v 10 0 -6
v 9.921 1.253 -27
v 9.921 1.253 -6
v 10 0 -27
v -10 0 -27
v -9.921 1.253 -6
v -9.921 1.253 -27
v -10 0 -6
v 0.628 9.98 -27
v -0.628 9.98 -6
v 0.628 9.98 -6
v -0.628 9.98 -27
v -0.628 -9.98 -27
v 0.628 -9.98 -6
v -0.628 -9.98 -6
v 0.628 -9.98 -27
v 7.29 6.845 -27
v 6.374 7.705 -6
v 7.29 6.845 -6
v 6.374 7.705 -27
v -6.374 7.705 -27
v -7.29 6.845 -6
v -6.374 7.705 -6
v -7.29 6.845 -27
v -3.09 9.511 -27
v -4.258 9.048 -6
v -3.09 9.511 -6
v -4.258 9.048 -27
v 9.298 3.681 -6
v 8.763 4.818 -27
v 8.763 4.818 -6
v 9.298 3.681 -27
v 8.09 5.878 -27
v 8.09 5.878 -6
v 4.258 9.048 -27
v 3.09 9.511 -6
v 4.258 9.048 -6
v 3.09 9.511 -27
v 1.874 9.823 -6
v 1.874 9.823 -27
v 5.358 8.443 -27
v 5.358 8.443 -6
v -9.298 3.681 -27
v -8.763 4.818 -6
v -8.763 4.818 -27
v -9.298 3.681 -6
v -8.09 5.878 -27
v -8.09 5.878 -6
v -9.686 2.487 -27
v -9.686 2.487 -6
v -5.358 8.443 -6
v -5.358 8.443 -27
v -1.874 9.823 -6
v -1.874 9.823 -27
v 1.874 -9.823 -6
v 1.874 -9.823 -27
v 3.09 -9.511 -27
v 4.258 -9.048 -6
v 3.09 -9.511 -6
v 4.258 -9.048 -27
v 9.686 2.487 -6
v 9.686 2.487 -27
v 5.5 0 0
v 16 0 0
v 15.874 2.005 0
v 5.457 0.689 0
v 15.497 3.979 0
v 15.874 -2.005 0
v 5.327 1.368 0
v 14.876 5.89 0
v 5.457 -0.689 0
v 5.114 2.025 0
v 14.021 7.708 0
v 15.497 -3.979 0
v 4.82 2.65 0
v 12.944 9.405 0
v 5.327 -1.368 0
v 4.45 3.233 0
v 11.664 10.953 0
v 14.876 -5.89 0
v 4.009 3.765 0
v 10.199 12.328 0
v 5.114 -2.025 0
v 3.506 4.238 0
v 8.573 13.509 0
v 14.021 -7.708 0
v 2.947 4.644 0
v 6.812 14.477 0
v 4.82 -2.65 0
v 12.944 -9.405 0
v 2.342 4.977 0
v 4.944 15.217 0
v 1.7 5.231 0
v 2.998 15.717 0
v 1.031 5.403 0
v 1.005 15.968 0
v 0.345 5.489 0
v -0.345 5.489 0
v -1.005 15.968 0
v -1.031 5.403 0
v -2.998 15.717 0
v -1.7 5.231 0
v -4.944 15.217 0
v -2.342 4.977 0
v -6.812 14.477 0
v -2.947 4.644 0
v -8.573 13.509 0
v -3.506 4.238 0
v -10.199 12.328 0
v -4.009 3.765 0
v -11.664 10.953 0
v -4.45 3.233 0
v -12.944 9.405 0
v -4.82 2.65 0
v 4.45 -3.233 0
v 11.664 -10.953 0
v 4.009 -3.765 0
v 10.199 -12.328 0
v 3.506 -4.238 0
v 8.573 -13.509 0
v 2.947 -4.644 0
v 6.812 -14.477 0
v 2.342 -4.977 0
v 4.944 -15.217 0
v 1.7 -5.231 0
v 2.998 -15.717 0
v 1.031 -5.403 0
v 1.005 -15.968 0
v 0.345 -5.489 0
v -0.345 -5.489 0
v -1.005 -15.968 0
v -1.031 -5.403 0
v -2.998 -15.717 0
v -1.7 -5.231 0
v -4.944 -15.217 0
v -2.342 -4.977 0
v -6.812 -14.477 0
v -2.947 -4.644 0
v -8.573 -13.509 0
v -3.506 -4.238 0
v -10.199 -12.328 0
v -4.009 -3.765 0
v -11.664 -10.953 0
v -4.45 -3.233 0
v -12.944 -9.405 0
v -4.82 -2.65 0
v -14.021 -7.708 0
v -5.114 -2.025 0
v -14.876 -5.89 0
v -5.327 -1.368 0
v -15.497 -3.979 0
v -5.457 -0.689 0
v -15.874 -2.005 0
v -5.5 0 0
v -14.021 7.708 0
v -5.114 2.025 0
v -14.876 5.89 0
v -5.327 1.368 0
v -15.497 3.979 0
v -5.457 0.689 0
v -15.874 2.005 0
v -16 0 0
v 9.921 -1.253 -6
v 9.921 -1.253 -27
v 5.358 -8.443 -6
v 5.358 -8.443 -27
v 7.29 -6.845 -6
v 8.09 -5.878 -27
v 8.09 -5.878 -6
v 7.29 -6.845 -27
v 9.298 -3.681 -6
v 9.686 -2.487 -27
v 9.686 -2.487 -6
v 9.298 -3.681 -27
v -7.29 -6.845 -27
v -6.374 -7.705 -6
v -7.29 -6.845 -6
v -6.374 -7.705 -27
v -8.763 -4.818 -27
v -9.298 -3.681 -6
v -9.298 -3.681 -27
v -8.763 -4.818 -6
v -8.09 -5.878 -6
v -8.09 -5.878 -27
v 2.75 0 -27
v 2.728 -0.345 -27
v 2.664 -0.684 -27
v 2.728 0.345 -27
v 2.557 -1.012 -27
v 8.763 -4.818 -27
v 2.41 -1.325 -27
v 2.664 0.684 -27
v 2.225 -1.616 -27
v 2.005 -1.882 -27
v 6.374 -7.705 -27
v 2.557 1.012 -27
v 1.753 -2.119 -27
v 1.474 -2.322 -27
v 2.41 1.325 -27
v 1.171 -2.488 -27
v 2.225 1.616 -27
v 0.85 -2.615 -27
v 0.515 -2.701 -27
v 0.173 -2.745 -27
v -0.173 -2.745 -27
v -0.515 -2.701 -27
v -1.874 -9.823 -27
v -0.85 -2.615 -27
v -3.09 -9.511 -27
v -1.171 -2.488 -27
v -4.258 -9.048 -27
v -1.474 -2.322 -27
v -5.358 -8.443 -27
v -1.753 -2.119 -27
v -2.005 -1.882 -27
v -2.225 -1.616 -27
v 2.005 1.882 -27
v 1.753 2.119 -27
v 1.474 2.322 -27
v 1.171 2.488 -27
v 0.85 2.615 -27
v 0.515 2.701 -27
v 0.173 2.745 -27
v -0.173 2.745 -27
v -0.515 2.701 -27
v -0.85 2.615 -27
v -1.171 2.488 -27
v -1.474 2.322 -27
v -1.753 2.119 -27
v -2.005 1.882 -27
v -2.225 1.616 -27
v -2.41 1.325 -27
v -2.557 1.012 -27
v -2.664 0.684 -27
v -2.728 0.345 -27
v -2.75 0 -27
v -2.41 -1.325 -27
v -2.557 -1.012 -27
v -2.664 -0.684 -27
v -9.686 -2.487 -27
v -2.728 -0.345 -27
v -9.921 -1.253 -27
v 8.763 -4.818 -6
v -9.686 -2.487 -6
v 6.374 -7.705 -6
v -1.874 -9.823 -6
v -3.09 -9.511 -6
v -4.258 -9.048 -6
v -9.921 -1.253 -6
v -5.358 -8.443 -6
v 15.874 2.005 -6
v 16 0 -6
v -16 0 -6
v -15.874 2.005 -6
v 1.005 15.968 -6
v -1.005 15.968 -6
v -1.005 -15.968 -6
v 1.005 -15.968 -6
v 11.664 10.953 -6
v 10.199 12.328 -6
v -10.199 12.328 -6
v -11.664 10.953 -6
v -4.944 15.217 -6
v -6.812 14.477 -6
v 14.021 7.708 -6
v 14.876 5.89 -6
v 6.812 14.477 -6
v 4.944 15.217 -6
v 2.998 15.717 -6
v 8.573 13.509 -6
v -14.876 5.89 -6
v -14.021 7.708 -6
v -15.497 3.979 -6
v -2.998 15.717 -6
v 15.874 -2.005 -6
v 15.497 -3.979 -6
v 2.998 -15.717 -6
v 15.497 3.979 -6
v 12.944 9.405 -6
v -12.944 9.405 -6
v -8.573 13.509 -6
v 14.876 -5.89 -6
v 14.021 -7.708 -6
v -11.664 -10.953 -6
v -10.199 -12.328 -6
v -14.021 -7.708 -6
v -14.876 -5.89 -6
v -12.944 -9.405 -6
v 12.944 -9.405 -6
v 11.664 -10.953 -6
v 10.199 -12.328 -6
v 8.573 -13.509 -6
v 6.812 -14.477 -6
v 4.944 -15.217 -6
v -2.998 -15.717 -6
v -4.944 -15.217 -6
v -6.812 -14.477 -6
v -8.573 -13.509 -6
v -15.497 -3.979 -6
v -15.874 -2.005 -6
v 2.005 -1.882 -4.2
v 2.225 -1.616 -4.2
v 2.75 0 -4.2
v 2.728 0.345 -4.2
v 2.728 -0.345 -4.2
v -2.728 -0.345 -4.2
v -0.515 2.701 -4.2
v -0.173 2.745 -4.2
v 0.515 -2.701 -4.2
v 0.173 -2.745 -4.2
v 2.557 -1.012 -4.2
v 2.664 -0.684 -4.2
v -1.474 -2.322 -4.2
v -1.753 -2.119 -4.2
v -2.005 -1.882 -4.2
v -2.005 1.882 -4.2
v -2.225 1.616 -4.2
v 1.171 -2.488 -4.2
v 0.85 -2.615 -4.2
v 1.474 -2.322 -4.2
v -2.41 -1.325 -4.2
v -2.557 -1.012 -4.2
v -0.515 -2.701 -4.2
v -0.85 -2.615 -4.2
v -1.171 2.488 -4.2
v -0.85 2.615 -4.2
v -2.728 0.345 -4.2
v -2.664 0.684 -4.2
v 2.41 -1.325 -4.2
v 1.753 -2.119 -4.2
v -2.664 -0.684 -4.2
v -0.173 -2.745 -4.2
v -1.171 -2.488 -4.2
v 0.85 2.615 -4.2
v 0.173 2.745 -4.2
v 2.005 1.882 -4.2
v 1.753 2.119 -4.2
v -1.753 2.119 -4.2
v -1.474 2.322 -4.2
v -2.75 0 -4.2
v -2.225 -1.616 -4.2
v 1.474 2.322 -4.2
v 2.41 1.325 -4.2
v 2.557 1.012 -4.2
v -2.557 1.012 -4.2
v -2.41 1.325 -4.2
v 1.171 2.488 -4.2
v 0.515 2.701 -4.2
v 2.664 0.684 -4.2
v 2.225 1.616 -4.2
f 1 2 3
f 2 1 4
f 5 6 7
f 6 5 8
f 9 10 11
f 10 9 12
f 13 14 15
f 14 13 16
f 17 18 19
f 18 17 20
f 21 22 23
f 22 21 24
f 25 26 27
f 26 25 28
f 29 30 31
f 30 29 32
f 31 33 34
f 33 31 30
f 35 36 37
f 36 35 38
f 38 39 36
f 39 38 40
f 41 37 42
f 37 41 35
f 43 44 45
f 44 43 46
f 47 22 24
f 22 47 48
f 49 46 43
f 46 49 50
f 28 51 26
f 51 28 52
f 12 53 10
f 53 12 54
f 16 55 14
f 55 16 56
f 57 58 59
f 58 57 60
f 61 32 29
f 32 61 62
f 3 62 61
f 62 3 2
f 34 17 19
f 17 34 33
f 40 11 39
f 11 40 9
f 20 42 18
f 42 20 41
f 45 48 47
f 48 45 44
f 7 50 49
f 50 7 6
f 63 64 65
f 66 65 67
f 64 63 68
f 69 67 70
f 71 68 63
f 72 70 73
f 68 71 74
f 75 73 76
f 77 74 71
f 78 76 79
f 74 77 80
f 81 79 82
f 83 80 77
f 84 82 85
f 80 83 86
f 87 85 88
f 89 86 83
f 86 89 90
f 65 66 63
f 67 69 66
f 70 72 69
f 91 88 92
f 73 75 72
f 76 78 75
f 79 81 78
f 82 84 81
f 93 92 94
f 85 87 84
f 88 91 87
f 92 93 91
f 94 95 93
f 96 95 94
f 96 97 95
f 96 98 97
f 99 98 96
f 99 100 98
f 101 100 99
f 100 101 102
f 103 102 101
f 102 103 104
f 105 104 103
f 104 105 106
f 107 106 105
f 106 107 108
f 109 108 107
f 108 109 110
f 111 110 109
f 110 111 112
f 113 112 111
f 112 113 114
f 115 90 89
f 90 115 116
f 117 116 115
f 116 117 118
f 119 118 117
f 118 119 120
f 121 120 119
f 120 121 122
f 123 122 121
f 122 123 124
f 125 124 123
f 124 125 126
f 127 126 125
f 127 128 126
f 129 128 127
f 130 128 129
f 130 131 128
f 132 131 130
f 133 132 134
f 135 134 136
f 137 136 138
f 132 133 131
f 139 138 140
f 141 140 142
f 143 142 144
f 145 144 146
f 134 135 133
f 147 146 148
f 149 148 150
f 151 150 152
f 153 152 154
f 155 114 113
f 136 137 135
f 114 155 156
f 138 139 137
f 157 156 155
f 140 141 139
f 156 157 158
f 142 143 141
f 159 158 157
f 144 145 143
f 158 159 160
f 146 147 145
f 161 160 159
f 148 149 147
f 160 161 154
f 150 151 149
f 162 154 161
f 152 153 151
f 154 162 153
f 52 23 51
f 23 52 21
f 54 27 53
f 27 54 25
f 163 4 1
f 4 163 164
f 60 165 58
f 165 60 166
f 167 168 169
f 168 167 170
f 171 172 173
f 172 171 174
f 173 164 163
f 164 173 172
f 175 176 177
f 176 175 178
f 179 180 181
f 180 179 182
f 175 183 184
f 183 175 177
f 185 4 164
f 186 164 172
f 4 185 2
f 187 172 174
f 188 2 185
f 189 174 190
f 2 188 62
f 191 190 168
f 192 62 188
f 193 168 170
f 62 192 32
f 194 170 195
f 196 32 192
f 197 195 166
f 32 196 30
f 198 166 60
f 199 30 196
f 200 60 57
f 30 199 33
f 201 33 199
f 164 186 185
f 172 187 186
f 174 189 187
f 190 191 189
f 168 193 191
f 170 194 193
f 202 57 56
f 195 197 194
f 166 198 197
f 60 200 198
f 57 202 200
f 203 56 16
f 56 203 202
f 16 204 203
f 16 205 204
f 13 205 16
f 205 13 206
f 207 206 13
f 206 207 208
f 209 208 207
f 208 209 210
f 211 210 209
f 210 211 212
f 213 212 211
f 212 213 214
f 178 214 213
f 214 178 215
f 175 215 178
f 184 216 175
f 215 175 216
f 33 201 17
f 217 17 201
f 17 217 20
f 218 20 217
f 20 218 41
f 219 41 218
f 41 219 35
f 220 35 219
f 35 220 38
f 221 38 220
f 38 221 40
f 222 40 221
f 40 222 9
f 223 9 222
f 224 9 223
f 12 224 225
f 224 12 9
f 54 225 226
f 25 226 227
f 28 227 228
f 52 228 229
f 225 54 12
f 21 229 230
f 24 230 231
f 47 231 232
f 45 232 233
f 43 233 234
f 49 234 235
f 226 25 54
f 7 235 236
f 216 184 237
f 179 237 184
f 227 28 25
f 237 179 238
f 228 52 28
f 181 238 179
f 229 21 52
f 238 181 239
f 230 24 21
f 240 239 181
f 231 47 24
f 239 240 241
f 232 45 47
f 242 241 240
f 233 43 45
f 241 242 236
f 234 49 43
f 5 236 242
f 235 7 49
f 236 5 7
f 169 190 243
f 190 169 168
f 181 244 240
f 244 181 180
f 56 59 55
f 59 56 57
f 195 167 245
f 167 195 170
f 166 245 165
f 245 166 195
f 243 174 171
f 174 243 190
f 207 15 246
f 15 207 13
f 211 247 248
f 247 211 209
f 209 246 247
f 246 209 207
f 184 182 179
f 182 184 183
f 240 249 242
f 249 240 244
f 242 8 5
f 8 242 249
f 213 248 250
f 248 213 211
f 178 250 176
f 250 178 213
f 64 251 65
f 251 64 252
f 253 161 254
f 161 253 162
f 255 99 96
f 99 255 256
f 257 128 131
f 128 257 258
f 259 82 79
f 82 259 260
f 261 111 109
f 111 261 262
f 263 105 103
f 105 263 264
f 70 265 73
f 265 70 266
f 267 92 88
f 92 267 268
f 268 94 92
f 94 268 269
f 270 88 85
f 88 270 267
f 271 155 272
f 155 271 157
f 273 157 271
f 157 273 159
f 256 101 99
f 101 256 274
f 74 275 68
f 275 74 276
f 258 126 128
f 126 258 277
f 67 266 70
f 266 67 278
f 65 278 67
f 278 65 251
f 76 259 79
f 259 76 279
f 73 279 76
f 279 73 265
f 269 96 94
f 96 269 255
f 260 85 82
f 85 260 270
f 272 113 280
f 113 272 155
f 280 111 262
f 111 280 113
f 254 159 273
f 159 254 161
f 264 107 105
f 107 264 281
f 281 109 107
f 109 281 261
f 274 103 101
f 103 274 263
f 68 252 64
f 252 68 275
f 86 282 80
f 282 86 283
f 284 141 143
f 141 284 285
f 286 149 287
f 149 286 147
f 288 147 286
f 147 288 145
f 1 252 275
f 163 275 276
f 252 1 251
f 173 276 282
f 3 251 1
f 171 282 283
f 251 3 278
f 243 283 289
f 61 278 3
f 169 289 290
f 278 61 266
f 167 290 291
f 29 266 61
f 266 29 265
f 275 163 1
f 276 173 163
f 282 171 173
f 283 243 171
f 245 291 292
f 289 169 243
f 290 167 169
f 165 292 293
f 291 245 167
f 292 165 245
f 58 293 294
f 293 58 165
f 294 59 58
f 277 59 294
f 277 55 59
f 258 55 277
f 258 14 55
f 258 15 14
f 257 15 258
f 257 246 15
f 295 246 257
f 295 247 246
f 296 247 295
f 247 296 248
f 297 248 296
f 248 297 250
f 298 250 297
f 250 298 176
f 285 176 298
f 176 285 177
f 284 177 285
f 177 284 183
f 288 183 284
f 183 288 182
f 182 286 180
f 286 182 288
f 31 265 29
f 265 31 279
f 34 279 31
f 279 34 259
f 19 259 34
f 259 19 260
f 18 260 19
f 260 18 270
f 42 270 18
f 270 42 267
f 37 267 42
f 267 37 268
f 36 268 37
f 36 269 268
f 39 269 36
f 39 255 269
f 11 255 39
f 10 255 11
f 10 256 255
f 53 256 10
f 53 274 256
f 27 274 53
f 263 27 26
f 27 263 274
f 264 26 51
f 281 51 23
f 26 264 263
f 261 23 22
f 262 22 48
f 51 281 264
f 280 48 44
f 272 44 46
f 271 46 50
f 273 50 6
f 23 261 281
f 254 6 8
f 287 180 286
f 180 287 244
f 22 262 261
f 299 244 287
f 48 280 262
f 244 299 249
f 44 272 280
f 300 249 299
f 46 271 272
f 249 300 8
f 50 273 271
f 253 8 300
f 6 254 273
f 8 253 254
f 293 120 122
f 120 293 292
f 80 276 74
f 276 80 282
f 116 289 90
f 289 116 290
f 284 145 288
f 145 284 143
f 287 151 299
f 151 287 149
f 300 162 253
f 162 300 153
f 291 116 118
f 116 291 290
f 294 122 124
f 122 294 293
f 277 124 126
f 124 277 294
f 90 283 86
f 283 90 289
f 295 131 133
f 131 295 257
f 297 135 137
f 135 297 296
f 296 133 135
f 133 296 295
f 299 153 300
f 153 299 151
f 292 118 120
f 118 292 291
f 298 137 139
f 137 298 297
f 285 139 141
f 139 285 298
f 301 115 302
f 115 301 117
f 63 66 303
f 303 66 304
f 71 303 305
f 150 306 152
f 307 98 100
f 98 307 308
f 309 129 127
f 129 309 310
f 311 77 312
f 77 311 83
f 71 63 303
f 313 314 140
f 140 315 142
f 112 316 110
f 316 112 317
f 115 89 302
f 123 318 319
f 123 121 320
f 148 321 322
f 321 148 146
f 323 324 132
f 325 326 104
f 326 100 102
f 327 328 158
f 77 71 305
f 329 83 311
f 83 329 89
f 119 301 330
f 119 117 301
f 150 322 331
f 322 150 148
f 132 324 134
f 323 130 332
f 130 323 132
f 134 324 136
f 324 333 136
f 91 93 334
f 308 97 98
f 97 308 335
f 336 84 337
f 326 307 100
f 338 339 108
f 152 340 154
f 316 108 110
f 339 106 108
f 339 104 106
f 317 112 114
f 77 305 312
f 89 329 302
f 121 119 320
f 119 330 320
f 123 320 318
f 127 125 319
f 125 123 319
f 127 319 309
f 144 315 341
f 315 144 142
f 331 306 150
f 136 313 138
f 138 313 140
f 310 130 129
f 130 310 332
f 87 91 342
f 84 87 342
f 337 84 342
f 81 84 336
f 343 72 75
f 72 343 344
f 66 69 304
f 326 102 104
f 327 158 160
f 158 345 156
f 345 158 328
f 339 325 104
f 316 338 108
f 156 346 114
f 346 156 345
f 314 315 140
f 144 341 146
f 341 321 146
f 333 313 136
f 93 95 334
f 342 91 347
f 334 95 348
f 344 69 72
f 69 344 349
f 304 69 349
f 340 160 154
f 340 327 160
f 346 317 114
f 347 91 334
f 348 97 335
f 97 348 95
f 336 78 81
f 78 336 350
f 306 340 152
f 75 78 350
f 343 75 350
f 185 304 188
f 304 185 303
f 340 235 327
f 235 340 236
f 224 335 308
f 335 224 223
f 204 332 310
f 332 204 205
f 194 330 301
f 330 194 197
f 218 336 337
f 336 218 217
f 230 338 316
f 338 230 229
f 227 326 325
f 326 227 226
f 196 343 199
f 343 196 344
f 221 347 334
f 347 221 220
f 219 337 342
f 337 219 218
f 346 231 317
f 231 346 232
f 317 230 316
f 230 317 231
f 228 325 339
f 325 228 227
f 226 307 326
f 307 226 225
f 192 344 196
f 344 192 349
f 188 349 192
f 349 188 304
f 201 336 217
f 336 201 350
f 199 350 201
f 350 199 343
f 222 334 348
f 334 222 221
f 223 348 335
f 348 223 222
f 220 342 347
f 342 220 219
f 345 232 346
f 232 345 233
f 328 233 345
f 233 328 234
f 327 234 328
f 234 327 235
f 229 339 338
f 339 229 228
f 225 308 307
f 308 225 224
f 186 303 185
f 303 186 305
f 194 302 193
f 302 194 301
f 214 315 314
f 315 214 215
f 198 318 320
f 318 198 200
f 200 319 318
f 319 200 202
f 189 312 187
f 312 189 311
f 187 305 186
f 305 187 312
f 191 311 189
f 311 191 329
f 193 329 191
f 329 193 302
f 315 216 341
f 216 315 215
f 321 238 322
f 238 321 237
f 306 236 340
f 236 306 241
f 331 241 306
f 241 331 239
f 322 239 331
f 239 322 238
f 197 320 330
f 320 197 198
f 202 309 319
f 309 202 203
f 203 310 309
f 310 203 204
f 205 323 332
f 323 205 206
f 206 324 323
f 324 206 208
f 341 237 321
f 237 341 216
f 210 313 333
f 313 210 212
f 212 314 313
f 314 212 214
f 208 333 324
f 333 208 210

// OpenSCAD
$fn = 50;


difference() {
	union() {
		translate(v = [0, 0, -27.0000000000]) {
			cylinder(h = 27, r = 10.0000000000);
		}
		translate(v = [0, 0, -6.0000000000]) {
			cylinder(h = 6, r = 16.0000000000);
		}
	}
	union() {
		translate(v = [0, 0, 0]) {
			rotate(a = [0, 0, 0]) {
				difference() {
					union() {
						#translate(v = [0, 0, -27.0000000000]) {
							cylinder(h = 27, r = 2.2500000000);
						}
						#translate(v = [0, 0, -4.2000000000]) {
							cylinder(h = 4.2000000000, r1 = 2.7500000000, r2 = 5.5000000000);
						}
						#translate(v = [0, 0, -27.0000000000]) {
							cylinder(h = 27, r = 2.7500000000);
						}
						#translate(v = [0, 0, -27.0000000000]) {
							cylinder(h = 27, r = 2.2500000000);
						}
					}
					union();
				}
			}
		}
	}
}
